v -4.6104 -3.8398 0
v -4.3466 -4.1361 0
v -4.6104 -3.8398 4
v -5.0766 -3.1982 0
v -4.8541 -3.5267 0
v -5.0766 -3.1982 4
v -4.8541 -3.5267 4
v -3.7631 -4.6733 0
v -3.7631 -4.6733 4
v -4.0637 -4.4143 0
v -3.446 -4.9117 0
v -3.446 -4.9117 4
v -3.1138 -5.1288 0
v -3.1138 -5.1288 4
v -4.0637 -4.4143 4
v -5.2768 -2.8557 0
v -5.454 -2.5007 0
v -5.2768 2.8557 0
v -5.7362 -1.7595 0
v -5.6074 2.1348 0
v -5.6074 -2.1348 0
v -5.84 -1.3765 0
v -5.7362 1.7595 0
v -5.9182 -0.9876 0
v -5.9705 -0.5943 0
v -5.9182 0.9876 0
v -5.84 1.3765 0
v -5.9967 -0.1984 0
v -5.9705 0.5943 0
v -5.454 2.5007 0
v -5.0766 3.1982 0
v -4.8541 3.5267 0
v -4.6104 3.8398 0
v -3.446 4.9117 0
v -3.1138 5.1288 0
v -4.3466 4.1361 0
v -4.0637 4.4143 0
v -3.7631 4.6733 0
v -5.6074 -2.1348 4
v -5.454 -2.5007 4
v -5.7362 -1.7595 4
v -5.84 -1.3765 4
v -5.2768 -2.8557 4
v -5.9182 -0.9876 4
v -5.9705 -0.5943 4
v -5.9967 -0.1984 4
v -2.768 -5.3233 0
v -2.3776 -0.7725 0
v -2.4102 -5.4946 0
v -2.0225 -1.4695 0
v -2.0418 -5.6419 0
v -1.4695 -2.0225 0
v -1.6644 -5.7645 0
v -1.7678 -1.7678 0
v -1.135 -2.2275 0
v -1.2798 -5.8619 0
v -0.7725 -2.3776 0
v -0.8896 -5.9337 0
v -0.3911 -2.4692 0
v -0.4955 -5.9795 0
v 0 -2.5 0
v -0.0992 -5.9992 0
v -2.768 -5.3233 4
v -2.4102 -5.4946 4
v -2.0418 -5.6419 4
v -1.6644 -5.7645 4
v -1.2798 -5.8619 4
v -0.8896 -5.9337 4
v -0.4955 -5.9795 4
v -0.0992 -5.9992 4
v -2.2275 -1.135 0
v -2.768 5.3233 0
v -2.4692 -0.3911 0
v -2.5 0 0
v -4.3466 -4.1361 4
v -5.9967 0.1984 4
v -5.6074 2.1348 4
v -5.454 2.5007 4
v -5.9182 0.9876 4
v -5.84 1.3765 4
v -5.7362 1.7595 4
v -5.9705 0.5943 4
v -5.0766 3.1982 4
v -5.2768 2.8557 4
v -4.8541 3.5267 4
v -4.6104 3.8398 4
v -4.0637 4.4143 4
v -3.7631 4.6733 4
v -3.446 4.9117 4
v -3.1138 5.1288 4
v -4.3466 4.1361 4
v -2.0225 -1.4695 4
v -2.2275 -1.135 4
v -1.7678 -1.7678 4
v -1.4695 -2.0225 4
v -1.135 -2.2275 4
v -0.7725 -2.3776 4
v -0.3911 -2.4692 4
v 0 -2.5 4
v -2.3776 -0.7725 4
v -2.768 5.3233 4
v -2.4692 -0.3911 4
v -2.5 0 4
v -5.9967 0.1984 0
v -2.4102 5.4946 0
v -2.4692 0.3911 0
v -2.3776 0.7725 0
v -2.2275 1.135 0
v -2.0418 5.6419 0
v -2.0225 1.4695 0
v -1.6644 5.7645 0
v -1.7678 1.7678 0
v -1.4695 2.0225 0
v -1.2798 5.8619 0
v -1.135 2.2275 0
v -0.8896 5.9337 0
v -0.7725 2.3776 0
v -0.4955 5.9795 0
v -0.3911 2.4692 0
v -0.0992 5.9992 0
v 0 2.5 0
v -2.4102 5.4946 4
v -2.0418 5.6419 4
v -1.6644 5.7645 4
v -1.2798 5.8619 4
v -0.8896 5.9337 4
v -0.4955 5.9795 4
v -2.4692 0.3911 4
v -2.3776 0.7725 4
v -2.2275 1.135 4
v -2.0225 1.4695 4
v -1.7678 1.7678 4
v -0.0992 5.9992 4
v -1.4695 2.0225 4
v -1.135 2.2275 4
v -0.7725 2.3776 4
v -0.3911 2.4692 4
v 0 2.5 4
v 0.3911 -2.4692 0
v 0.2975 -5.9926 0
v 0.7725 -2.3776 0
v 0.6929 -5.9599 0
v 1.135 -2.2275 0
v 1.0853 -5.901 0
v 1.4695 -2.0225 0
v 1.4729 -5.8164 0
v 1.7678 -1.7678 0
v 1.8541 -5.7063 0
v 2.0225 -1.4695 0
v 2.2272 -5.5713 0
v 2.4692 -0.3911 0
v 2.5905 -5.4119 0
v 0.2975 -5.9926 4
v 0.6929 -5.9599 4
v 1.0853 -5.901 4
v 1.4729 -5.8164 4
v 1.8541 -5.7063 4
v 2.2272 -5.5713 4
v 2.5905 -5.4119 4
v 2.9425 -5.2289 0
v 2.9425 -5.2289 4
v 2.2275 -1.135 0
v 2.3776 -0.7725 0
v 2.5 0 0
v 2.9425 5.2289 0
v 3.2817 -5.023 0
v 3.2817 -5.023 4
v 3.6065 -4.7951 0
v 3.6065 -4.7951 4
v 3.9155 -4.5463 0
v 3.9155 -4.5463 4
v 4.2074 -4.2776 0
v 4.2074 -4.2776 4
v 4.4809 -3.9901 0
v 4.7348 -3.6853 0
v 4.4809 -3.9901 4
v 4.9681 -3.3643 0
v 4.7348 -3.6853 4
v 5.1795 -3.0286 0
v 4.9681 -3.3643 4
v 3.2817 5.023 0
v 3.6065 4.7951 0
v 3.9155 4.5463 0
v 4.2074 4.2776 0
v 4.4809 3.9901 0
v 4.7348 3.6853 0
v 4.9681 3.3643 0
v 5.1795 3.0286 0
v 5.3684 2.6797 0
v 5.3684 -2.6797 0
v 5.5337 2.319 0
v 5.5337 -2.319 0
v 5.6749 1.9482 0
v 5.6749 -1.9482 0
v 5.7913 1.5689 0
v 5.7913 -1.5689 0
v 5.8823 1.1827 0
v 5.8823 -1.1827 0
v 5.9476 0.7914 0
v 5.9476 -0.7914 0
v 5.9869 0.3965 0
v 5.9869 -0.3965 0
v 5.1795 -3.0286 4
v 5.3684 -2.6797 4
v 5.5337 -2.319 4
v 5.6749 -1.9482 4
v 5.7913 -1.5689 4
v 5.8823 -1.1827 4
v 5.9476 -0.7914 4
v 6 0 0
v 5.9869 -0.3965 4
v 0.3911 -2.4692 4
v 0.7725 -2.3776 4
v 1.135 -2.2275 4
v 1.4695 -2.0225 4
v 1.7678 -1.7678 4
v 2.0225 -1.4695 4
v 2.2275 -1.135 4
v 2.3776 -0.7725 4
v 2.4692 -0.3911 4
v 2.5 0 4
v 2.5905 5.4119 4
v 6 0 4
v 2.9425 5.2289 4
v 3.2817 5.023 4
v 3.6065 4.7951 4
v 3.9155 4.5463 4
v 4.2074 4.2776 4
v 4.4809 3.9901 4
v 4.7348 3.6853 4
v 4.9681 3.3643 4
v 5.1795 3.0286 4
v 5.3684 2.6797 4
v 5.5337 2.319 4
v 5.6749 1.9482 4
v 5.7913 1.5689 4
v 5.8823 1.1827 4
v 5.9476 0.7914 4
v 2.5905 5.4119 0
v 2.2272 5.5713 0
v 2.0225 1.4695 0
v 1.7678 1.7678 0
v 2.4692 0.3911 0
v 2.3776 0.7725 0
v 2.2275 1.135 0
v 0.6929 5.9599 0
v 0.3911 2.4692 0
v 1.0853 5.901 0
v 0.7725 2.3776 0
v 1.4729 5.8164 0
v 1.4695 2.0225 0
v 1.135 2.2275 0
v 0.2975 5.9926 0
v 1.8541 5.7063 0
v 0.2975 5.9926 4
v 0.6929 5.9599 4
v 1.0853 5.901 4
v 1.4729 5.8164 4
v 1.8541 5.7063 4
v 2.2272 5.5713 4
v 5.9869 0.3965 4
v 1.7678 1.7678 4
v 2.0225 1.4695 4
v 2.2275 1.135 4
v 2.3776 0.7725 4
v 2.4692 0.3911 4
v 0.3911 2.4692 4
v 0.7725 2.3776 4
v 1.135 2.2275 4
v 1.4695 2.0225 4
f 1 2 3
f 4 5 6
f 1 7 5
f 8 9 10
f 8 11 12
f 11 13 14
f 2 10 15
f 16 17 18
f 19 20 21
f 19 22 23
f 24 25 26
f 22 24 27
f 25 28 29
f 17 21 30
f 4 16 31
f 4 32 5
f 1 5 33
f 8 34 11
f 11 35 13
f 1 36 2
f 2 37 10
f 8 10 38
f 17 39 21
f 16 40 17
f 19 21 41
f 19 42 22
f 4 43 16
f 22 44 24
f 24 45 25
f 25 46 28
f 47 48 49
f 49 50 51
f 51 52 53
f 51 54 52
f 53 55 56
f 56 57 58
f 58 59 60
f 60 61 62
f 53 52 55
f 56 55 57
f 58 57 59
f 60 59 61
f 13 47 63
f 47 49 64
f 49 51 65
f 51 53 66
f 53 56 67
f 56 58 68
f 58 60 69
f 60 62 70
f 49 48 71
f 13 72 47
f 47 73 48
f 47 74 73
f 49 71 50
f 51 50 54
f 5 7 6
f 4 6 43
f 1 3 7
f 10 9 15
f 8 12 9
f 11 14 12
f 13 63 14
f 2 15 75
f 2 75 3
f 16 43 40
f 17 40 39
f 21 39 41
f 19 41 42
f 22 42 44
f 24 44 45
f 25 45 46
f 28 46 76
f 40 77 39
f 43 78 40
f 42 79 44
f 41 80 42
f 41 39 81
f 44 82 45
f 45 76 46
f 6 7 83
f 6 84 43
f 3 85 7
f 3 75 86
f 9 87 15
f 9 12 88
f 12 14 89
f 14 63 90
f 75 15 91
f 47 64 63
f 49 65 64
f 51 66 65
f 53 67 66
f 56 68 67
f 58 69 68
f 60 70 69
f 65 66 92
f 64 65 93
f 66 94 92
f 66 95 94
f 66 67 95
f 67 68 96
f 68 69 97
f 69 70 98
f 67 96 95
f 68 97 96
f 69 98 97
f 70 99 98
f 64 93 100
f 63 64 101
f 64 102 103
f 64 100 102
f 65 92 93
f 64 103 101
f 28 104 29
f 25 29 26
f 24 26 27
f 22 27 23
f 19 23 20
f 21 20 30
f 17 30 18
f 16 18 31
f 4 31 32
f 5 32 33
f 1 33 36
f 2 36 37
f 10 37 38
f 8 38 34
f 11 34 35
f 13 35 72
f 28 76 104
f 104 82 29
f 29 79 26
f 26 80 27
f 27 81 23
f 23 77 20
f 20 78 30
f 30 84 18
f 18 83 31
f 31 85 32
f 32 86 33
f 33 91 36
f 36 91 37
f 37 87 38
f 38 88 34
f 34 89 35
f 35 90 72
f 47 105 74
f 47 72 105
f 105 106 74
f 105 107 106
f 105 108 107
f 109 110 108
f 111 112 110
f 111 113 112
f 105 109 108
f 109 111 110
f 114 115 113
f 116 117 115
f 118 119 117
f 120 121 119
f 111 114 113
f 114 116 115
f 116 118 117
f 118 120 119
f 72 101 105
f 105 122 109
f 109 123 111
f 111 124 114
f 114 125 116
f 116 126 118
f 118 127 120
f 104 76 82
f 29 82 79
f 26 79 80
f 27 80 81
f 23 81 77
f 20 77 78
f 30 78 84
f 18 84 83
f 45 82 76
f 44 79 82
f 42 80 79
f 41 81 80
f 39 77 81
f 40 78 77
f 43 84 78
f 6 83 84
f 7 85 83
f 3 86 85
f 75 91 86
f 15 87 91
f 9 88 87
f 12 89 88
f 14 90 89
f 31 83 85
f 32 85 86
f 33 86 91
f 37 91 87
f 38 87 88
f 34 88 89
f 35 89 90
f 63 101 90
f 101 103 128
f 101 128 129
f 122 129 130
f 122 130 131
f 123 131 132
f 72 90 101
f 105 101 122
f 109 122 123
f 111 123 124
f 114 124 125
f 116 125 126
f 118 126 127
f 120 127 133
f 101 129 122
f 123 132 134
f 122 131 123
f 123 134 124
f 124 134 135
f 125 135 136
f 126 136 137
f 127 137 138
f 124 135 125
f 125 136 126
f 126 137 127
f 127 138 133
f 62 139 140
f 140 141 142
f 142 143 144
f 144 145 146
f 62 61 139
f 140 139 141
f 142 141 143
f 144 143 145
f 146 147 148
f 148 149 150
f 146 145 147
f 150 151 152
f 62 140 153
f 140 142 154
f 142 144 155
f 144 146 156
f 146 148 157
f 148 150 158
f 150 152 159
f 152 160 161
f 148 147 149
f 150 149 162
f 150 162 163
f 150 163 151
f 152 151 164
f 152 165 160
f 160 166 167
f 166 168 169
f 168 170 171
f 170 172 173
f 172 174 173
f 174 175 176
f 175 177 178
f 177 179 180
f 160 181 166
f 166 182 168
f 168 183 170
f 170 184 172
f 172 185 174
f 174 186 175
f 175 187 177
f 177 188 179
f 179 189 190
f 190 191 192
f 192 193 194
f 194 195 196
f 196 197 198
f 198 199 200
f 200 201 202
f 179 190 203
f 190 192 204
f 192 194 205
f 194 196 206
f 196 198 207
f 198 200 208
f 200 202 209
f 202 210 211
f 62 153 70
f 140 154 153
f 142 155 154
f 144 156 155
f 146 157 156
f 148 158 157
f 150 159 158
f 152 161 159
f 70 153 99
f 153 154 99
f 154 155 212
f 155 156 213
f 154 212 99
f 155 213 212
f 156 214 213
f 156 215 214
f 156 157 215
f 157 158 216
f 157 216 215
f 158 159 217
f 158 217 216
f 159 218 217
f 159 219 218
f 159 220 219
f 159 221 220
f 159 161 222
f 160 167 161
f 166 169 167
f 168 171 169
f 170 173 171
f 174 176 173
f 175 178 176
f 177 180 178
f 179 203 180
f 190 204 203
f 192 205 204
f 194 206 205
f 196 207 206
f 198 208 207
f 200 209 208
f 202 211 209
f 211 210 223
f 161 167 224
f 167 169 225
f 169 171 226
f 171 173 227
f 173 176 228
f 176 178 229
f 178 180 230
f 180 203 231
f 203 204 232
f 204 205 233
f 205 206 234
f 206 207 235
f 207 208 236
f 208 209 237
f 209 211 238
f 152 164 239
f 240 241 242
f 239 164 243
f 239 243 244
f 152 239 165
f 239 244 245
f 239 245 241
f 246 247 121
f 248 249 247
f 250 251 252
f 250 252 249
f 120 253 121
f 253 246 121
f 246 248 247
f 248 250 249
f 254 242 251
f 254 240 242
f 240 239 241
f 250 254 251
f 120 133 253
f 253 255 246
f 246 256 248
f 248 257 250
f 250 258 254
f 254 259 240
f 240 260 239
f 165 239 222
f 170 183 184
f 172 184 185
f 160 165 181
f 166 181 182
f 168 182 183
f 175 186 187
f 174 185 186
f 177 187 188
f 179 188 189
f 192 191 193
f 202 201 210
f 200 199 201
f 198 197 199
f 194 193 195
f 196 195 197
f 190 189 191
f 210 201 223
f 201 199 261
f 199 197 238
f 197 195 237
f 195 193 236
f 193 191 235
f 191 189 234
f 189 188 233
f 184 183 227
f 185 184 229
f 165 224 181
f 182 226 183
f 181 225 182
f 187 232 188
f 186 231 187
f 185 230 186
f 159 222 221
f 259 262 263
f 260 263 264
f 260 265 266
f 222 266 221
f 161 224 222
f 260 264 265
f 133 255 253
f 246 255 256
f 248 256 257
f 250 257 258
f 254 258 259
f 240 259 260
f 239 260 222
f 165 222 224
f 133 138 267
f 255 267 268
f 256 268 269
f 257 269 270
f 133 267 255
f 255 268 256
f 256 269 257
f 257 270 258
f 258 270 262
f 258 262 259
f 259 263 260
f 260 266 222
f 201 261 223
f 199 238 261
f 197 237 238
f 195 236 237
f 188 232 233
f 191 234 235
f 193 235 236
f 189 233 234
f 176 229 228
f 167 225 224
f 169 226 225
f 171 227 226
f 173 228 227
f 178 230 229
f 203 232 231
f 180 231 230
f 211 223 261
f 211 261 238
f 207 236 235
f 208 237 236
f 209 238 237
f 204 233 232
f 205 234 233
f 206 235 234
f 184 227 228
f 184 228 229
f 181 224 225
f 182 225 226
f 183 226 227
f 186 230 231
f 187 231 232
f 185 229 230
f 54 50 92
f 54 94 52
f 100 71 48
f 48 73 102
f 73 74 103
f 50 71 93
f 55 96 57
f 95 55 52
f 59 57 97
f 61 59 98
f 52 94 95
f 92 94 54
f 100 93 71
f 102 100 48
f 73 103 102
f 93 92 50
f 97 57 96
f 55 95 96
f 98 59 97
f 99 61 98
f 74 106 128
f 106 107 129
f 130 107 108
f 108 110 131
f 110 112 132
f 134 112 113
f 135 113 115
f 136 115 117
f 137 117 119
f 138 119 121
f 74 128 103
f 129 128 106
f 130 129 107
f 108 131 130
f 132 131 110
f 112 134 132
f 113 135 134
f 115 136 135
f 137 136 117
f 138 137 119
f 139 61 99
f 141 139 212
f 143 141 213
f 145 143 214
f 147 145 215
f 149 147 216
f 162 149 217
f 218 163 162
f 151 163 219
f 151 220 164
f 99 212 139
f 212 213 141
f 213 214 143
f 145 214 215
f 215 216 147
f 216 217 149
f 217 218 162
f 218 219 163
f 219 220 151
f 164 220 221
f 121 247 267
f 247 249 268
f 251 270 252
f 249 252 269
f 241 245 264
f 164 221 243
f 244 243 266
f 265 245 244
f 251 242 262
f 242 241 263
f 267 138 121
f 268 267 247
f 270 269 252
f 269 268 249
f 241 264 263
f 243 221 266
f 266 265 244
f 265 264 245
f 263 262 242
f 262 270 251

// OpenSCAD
$fa=1;
$fs=0.4;

// A simple spacer
// Initially I thought my project needed this to better secure the door hardware
// In the end I didn't need it, but you never know when you'll need a spacer!

// set this for your spacer requirements
spacer_size = 4;
spacer_diam = 12;
spacer_center_hole = 5;

difference()
   {
      cylinder(h=spacer_size, d=spacer_diam);
      translate([0, 0, -2])
         cylinder(h=(spacer_size*2), d=spacer_center_hole);
   }
